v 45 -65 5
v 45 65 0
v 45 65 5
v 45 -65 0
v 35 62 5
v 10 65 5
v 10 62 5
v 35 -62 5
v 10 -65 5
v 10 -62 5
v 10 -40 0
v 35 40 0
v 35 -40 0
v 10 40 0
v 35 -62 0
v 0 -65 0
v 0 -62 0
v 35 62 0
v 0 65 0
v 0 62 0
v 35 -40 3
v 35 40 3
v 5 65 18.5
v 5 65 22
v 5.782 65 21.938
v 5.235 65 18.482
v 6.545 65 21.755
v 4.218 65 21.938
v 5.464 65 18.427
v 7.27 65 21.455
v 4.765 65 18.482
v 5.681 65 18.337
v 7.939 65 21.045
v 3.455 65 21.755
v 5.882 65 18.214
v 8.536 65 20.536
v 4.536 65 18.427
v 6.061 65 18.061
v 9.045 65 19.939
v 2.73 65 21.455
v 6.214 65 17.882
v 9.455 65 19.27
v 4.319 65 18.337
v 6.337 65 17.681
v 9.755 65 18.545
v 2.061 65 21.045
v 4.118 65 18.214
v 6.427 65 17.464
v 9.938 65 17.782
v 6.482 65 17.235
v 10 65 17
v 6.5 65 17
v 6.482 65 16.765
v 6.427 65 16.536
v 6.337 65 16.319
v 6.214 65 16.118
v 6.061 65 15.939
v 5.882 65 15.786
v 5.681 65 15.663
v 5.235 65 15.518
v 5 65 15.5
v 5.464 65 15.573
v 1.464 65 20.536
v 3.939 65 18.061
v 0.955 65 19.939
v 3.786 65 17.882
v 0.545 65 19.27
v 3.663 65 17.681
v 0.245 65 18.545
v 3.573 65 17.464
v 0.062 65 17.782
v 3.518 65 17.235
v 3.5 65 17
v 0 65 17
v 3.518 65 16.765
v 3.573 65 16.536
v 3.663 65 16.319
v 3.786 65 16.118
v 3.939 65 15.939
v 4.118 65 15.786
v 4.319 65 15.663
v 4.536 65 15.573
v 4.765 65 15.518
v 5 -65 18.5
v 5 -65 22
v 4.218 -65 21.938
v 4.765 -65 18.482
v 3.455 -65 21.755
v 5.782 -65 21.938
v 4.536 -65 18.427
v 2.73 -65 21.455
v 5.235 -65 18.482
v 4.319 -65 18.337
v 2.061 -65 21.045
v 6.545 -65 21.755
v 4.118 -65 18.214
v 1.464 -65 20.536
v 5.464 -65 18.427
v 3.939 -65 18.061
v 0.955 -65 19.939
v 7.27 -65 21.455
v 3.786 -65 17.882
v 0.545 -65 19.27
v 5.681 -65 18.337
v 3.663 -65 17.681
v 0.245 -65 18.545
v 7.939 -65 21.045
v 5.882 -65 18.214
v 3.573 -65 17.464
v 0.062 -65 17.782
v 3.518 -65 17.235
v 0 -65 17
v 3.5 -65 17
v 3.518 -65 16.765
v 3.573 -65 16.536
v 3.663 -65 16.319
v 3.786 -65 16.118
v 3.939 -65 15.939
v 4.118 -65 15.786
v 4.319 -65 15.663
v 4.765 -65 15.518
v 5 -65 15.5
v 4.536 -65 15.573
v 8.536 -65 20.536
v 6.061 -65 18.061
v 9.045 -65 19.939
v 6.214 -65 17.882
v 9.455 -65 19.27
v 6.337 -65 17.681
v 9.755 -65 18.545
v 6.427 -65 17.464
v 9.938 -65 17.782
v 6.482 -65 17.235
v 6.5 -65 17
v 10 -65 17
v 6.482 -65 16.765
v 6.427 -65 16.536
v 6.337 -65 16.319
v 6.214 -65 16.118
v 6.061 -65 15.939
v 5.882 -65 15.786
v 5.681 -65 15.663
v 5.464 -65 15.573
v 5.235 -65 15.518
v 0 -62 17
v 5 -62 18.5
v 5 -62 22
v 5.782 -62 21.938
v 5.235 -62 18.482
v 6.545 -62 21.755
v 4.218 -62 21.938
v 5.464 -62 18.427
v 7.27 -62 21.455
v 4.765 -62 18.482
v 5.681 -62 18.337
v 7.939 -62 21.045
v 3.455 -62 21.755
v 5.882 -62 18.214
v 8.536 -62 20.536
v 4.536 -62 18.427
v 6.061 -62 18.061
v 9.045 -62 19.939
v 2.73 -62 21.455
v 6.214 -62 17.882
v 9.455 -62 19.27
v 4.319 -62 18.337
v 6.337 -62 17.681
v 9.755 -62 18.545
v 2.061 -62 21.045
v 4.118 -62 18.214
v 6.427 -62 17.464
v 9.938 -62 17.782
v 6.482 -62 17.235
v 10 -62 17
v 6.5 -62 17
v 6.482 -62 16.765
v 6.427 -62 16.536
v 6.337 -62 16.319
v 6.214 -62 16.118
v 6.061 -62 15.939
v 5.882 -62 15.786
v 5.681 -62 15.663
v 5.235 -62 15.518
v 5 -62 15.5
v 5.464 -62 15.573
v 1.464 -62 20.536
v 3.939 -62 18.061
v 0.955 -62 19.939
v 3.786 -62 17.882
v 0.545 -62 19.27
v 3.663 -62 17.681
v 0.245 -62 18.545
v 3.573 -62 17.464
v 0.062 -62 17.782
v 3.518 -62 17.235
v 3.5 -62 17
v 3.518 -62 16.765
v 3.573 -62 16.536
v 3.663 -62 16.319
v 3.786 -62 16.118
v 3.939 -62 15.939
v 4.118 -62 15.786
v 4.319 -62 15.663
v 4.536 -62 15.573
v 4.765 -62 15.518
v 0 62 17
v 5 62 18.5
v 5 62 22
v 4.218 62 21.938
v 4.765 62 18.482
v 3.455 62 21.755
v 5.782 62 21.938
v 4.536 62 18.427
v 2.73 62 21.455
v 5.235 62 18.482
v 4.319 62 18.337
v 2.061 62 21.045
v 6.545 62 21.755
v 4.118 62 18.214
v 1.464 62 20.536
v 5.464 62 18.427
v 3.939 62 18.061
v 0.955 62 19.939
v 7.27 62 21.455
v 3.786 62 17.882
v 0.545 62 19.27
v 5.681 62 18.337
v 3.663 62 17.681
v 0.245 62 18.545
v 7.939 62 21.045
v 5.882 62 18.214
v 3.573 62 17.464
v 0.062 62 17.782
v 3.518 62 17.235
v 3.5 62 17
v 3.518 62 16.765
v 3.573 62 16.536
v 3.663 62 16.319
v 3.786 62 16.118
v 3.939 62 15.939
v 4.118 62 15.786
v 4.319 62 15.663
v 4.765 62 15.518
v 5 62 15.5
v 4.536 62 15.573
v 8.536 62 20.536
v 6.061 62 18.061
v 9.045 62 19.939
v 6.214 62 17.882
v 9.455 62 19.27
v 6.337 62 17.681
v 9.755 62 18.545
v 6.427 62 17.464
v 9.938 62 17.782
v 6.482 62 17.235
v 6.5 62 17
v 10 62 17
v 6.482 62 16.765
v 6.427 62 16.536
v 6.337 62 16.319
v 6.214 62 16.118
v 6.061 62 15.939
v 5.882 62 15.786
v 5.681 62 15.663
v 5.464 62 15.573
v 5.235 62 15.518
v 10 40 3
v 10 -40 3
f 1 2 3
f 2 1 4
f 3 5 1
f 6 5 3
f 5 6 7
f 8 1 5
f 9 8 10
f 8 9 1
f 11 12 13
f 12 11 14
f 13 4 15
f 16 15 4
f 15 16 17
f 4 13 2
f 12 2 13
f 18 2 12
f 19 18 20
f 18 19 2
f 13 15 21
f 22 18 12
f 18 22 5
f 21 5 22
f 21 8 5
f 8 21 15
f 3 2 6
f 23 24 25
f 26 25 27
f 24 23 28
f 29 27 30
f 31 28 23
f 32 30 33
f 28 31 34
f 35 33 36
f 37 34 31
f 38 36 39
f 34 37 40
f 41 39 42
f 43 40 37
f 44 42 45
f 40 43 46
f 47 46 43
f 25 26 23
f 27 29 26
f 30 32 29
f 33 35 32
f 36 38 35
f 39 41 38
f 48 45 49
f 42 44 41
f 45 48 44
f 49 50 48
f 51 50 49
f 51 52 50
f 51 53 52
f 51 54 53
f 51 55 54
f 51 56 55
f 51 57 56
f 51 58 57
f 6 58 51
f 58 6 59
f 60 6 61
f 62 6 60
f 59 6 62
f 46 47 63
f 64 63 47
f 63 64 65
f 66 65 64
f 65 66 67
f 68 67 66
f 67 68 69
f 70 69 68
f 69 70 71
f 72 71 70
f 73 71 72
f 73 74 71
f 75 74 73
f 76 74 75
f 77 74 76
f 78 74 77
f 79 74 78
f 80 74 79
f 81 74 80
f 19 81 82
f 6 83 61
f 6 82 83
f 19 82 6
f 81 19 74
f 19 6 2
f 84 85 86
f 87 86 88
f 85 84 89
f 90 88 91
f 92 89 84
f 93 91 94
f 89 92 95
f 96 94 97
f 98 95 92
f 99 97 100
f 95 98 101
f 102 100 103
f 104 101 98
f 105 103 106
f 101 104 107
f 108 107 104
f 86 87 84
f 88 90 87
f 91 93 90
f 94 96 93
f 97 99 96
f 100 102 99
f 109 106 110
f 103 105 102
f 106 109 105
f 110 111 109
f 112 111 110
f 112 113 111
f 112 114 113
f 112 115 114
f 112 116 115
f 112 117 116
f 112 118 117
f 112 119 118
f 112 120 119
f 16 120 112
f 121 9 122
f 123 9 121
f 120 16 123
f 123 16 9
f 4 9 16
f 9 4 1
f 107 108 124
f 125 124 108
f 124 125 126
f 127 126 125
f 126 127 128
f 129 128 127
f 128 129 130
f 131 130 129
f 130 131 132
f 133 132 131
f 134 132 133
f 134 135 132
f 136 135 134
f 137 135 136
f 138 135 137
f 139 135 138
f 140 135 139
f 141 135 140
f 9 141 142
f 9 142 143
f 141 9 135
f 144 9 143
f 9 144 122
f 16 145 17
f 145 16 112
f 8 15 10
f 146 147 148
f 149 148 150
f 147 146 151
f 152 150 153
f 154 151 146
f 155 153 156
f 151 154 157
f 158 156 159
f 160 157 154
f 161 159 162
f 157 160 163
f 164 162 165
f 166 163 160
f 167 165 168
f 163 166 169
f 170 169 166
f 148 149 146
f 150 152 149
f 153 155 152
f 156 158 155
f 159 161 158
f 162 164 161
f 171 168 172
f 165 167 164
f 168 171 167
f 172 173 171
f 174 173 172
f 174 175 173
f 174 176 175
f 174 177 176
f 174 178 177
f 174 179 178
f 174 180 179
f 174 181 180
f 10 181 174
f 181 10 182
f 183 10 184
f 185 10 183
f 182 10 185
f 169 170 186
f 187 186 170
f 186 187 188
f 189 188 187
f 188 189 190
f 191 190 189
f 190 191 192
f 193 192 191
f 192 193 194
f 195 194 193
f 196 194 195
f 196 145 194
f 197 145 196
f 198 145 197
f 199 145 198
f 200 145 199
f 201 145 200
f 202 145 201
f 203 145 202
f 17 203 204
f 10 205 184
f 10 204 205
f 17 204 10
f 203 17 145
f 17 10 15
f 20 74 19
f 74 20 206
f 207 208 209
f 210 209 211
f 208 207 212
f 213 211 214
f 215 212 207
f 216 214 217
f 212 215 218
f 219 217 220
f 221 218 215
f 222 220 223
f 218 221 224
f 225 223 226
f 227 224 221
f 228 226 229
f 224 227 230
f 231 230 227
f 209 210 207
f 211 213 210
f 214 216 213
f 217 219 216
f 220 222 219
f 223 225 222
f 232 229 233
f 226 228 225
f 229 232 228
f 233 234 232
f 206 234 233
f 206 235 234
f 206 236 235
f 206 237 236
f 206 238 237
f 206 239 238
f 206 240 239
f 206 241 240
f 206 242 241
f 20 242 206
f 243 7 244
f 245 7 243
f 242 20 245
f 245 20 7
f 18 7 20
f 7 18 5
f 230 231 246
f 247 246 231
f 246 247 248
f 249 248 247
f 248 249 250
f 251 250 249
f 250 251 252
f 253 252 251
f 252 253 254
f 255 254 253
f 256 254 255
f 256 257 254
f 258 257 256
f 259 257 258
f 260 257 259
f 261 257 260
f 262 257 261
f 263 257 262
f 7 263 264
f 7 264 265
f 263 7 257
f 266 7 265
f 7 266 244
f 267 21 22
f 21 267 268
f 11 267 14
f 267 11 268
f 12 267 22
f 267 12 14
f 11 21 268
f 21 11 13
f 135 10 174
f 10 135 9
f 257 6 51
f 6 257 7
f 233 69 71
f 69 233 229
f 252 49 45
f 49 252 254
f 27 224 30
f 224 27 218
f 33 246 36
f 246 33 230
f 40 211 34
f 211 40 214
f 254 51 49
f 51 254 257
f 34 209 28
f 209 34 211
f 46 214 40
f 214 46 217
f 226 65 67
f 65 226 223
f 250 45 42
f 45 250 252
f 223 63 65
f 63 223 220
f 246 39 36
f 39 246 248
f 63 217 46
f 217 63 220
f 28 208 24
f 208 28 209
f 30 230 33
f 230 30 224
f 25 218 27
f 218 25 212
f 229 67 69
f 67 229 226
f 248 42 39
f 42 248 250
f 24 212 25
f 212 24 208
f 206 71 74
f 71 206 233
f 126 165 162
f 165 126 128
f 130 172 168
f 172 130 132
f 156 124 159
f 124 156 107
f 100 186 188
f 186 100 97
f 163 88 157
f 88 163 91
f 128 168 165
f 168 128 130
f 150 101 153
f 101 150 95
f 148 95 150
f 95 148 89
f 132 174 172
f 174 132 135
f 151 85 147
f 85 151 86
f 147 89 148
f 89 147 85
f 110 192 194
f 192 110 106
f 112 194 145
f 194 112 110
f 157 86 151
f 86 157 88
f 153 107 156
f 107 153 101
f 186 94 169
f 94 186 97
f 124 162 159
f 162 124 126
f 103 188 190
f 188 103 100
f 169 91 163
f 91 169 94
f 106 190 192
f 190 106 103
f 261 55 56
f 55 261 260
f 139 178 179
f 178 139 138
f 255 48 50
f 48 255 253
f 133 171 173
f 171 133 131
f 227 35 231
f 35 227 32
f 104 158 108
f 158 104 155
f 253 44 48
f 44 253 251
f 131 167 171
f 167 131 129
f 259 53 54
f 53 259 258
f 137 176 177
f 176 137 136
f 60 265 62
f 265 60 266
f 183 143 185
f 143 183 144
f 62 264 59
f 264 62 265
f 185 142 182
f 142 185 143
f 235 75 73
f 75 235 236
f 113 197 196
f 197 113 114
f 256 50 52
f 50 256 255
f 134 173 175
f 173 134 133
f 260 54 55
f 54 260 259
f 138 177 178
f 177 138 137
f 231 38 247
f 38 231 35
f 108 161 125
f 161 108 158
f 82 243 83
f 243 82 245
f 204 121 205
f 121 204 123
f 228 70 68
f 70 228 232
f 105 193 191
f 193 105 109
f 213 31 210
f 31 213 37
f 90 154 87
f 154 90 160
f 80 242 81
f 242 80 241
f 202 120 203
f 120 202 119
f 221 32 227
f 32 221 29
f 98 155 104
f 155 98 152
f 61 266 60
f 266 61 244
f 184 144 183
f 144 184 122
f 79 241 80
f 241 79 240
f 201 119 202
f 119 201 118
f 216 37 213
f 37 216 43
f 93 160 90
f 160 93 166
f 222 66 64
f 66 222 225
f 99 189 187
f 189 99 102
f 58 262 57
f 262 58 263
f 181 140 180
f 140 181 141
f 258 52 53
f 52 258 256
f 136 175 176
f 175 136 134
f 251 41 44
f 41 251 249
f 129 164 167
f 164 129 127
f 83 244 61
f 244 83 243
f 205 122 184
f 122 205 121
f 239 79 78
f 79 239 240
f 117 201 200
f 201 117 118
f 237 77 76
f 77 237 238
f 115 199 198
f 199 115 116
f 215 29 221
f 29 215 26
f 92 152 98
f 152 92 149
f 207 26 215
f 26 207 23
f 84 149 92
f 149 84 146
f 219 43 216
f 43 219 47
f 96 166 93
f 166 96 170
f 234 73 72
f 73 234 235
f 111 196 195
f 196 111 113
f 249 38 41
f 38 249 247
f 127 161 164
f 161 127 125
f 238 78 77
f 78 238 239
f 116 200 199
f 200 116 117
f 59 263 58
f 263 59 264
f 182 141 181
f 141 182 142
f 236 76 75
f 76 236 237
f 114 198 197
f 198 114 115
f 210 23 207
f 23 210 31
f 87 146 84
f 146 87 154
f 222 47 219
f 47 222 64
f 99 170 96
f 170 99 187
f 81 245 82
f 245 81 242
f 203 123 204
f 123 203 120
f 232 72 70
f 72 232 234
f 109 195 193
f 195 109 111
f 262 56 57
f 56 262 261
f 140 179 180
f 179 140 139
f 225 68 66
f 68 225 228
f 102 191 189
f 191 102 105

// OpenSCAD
    difference() {
        
        
        union() {
            translate([35, -65, 0])
                cube([10, 130, 5]);
            translate([0, -65, 0])
                cube([45, 3, 5]);
            translate([0, 65-3, 0])
                cube([45, 3, 5]);
            translate([10, -40, 0])
                cube([25, 80, 3]);


            translate([0, -65, 0])
                cube([10, 3, 17]);
            translate([0, 65-3, 0])
                cube([10, 3, 17]);

            translate([5, 65, 17])
            rotate([90, 0, 0]) 
                cylinder(h=3, d=10, $fn=40);

            translate([5, -65+3, 17])
            rotate([90, 0, 0]) 
                cylinder(h=3, d=10, $fn=40);


        }    
            translate([5, 0, 17])
            rotate([90, 0, 0]) 
                cylinder(h=1000, d=3, center=true, $fn=40);
//
        

    }
